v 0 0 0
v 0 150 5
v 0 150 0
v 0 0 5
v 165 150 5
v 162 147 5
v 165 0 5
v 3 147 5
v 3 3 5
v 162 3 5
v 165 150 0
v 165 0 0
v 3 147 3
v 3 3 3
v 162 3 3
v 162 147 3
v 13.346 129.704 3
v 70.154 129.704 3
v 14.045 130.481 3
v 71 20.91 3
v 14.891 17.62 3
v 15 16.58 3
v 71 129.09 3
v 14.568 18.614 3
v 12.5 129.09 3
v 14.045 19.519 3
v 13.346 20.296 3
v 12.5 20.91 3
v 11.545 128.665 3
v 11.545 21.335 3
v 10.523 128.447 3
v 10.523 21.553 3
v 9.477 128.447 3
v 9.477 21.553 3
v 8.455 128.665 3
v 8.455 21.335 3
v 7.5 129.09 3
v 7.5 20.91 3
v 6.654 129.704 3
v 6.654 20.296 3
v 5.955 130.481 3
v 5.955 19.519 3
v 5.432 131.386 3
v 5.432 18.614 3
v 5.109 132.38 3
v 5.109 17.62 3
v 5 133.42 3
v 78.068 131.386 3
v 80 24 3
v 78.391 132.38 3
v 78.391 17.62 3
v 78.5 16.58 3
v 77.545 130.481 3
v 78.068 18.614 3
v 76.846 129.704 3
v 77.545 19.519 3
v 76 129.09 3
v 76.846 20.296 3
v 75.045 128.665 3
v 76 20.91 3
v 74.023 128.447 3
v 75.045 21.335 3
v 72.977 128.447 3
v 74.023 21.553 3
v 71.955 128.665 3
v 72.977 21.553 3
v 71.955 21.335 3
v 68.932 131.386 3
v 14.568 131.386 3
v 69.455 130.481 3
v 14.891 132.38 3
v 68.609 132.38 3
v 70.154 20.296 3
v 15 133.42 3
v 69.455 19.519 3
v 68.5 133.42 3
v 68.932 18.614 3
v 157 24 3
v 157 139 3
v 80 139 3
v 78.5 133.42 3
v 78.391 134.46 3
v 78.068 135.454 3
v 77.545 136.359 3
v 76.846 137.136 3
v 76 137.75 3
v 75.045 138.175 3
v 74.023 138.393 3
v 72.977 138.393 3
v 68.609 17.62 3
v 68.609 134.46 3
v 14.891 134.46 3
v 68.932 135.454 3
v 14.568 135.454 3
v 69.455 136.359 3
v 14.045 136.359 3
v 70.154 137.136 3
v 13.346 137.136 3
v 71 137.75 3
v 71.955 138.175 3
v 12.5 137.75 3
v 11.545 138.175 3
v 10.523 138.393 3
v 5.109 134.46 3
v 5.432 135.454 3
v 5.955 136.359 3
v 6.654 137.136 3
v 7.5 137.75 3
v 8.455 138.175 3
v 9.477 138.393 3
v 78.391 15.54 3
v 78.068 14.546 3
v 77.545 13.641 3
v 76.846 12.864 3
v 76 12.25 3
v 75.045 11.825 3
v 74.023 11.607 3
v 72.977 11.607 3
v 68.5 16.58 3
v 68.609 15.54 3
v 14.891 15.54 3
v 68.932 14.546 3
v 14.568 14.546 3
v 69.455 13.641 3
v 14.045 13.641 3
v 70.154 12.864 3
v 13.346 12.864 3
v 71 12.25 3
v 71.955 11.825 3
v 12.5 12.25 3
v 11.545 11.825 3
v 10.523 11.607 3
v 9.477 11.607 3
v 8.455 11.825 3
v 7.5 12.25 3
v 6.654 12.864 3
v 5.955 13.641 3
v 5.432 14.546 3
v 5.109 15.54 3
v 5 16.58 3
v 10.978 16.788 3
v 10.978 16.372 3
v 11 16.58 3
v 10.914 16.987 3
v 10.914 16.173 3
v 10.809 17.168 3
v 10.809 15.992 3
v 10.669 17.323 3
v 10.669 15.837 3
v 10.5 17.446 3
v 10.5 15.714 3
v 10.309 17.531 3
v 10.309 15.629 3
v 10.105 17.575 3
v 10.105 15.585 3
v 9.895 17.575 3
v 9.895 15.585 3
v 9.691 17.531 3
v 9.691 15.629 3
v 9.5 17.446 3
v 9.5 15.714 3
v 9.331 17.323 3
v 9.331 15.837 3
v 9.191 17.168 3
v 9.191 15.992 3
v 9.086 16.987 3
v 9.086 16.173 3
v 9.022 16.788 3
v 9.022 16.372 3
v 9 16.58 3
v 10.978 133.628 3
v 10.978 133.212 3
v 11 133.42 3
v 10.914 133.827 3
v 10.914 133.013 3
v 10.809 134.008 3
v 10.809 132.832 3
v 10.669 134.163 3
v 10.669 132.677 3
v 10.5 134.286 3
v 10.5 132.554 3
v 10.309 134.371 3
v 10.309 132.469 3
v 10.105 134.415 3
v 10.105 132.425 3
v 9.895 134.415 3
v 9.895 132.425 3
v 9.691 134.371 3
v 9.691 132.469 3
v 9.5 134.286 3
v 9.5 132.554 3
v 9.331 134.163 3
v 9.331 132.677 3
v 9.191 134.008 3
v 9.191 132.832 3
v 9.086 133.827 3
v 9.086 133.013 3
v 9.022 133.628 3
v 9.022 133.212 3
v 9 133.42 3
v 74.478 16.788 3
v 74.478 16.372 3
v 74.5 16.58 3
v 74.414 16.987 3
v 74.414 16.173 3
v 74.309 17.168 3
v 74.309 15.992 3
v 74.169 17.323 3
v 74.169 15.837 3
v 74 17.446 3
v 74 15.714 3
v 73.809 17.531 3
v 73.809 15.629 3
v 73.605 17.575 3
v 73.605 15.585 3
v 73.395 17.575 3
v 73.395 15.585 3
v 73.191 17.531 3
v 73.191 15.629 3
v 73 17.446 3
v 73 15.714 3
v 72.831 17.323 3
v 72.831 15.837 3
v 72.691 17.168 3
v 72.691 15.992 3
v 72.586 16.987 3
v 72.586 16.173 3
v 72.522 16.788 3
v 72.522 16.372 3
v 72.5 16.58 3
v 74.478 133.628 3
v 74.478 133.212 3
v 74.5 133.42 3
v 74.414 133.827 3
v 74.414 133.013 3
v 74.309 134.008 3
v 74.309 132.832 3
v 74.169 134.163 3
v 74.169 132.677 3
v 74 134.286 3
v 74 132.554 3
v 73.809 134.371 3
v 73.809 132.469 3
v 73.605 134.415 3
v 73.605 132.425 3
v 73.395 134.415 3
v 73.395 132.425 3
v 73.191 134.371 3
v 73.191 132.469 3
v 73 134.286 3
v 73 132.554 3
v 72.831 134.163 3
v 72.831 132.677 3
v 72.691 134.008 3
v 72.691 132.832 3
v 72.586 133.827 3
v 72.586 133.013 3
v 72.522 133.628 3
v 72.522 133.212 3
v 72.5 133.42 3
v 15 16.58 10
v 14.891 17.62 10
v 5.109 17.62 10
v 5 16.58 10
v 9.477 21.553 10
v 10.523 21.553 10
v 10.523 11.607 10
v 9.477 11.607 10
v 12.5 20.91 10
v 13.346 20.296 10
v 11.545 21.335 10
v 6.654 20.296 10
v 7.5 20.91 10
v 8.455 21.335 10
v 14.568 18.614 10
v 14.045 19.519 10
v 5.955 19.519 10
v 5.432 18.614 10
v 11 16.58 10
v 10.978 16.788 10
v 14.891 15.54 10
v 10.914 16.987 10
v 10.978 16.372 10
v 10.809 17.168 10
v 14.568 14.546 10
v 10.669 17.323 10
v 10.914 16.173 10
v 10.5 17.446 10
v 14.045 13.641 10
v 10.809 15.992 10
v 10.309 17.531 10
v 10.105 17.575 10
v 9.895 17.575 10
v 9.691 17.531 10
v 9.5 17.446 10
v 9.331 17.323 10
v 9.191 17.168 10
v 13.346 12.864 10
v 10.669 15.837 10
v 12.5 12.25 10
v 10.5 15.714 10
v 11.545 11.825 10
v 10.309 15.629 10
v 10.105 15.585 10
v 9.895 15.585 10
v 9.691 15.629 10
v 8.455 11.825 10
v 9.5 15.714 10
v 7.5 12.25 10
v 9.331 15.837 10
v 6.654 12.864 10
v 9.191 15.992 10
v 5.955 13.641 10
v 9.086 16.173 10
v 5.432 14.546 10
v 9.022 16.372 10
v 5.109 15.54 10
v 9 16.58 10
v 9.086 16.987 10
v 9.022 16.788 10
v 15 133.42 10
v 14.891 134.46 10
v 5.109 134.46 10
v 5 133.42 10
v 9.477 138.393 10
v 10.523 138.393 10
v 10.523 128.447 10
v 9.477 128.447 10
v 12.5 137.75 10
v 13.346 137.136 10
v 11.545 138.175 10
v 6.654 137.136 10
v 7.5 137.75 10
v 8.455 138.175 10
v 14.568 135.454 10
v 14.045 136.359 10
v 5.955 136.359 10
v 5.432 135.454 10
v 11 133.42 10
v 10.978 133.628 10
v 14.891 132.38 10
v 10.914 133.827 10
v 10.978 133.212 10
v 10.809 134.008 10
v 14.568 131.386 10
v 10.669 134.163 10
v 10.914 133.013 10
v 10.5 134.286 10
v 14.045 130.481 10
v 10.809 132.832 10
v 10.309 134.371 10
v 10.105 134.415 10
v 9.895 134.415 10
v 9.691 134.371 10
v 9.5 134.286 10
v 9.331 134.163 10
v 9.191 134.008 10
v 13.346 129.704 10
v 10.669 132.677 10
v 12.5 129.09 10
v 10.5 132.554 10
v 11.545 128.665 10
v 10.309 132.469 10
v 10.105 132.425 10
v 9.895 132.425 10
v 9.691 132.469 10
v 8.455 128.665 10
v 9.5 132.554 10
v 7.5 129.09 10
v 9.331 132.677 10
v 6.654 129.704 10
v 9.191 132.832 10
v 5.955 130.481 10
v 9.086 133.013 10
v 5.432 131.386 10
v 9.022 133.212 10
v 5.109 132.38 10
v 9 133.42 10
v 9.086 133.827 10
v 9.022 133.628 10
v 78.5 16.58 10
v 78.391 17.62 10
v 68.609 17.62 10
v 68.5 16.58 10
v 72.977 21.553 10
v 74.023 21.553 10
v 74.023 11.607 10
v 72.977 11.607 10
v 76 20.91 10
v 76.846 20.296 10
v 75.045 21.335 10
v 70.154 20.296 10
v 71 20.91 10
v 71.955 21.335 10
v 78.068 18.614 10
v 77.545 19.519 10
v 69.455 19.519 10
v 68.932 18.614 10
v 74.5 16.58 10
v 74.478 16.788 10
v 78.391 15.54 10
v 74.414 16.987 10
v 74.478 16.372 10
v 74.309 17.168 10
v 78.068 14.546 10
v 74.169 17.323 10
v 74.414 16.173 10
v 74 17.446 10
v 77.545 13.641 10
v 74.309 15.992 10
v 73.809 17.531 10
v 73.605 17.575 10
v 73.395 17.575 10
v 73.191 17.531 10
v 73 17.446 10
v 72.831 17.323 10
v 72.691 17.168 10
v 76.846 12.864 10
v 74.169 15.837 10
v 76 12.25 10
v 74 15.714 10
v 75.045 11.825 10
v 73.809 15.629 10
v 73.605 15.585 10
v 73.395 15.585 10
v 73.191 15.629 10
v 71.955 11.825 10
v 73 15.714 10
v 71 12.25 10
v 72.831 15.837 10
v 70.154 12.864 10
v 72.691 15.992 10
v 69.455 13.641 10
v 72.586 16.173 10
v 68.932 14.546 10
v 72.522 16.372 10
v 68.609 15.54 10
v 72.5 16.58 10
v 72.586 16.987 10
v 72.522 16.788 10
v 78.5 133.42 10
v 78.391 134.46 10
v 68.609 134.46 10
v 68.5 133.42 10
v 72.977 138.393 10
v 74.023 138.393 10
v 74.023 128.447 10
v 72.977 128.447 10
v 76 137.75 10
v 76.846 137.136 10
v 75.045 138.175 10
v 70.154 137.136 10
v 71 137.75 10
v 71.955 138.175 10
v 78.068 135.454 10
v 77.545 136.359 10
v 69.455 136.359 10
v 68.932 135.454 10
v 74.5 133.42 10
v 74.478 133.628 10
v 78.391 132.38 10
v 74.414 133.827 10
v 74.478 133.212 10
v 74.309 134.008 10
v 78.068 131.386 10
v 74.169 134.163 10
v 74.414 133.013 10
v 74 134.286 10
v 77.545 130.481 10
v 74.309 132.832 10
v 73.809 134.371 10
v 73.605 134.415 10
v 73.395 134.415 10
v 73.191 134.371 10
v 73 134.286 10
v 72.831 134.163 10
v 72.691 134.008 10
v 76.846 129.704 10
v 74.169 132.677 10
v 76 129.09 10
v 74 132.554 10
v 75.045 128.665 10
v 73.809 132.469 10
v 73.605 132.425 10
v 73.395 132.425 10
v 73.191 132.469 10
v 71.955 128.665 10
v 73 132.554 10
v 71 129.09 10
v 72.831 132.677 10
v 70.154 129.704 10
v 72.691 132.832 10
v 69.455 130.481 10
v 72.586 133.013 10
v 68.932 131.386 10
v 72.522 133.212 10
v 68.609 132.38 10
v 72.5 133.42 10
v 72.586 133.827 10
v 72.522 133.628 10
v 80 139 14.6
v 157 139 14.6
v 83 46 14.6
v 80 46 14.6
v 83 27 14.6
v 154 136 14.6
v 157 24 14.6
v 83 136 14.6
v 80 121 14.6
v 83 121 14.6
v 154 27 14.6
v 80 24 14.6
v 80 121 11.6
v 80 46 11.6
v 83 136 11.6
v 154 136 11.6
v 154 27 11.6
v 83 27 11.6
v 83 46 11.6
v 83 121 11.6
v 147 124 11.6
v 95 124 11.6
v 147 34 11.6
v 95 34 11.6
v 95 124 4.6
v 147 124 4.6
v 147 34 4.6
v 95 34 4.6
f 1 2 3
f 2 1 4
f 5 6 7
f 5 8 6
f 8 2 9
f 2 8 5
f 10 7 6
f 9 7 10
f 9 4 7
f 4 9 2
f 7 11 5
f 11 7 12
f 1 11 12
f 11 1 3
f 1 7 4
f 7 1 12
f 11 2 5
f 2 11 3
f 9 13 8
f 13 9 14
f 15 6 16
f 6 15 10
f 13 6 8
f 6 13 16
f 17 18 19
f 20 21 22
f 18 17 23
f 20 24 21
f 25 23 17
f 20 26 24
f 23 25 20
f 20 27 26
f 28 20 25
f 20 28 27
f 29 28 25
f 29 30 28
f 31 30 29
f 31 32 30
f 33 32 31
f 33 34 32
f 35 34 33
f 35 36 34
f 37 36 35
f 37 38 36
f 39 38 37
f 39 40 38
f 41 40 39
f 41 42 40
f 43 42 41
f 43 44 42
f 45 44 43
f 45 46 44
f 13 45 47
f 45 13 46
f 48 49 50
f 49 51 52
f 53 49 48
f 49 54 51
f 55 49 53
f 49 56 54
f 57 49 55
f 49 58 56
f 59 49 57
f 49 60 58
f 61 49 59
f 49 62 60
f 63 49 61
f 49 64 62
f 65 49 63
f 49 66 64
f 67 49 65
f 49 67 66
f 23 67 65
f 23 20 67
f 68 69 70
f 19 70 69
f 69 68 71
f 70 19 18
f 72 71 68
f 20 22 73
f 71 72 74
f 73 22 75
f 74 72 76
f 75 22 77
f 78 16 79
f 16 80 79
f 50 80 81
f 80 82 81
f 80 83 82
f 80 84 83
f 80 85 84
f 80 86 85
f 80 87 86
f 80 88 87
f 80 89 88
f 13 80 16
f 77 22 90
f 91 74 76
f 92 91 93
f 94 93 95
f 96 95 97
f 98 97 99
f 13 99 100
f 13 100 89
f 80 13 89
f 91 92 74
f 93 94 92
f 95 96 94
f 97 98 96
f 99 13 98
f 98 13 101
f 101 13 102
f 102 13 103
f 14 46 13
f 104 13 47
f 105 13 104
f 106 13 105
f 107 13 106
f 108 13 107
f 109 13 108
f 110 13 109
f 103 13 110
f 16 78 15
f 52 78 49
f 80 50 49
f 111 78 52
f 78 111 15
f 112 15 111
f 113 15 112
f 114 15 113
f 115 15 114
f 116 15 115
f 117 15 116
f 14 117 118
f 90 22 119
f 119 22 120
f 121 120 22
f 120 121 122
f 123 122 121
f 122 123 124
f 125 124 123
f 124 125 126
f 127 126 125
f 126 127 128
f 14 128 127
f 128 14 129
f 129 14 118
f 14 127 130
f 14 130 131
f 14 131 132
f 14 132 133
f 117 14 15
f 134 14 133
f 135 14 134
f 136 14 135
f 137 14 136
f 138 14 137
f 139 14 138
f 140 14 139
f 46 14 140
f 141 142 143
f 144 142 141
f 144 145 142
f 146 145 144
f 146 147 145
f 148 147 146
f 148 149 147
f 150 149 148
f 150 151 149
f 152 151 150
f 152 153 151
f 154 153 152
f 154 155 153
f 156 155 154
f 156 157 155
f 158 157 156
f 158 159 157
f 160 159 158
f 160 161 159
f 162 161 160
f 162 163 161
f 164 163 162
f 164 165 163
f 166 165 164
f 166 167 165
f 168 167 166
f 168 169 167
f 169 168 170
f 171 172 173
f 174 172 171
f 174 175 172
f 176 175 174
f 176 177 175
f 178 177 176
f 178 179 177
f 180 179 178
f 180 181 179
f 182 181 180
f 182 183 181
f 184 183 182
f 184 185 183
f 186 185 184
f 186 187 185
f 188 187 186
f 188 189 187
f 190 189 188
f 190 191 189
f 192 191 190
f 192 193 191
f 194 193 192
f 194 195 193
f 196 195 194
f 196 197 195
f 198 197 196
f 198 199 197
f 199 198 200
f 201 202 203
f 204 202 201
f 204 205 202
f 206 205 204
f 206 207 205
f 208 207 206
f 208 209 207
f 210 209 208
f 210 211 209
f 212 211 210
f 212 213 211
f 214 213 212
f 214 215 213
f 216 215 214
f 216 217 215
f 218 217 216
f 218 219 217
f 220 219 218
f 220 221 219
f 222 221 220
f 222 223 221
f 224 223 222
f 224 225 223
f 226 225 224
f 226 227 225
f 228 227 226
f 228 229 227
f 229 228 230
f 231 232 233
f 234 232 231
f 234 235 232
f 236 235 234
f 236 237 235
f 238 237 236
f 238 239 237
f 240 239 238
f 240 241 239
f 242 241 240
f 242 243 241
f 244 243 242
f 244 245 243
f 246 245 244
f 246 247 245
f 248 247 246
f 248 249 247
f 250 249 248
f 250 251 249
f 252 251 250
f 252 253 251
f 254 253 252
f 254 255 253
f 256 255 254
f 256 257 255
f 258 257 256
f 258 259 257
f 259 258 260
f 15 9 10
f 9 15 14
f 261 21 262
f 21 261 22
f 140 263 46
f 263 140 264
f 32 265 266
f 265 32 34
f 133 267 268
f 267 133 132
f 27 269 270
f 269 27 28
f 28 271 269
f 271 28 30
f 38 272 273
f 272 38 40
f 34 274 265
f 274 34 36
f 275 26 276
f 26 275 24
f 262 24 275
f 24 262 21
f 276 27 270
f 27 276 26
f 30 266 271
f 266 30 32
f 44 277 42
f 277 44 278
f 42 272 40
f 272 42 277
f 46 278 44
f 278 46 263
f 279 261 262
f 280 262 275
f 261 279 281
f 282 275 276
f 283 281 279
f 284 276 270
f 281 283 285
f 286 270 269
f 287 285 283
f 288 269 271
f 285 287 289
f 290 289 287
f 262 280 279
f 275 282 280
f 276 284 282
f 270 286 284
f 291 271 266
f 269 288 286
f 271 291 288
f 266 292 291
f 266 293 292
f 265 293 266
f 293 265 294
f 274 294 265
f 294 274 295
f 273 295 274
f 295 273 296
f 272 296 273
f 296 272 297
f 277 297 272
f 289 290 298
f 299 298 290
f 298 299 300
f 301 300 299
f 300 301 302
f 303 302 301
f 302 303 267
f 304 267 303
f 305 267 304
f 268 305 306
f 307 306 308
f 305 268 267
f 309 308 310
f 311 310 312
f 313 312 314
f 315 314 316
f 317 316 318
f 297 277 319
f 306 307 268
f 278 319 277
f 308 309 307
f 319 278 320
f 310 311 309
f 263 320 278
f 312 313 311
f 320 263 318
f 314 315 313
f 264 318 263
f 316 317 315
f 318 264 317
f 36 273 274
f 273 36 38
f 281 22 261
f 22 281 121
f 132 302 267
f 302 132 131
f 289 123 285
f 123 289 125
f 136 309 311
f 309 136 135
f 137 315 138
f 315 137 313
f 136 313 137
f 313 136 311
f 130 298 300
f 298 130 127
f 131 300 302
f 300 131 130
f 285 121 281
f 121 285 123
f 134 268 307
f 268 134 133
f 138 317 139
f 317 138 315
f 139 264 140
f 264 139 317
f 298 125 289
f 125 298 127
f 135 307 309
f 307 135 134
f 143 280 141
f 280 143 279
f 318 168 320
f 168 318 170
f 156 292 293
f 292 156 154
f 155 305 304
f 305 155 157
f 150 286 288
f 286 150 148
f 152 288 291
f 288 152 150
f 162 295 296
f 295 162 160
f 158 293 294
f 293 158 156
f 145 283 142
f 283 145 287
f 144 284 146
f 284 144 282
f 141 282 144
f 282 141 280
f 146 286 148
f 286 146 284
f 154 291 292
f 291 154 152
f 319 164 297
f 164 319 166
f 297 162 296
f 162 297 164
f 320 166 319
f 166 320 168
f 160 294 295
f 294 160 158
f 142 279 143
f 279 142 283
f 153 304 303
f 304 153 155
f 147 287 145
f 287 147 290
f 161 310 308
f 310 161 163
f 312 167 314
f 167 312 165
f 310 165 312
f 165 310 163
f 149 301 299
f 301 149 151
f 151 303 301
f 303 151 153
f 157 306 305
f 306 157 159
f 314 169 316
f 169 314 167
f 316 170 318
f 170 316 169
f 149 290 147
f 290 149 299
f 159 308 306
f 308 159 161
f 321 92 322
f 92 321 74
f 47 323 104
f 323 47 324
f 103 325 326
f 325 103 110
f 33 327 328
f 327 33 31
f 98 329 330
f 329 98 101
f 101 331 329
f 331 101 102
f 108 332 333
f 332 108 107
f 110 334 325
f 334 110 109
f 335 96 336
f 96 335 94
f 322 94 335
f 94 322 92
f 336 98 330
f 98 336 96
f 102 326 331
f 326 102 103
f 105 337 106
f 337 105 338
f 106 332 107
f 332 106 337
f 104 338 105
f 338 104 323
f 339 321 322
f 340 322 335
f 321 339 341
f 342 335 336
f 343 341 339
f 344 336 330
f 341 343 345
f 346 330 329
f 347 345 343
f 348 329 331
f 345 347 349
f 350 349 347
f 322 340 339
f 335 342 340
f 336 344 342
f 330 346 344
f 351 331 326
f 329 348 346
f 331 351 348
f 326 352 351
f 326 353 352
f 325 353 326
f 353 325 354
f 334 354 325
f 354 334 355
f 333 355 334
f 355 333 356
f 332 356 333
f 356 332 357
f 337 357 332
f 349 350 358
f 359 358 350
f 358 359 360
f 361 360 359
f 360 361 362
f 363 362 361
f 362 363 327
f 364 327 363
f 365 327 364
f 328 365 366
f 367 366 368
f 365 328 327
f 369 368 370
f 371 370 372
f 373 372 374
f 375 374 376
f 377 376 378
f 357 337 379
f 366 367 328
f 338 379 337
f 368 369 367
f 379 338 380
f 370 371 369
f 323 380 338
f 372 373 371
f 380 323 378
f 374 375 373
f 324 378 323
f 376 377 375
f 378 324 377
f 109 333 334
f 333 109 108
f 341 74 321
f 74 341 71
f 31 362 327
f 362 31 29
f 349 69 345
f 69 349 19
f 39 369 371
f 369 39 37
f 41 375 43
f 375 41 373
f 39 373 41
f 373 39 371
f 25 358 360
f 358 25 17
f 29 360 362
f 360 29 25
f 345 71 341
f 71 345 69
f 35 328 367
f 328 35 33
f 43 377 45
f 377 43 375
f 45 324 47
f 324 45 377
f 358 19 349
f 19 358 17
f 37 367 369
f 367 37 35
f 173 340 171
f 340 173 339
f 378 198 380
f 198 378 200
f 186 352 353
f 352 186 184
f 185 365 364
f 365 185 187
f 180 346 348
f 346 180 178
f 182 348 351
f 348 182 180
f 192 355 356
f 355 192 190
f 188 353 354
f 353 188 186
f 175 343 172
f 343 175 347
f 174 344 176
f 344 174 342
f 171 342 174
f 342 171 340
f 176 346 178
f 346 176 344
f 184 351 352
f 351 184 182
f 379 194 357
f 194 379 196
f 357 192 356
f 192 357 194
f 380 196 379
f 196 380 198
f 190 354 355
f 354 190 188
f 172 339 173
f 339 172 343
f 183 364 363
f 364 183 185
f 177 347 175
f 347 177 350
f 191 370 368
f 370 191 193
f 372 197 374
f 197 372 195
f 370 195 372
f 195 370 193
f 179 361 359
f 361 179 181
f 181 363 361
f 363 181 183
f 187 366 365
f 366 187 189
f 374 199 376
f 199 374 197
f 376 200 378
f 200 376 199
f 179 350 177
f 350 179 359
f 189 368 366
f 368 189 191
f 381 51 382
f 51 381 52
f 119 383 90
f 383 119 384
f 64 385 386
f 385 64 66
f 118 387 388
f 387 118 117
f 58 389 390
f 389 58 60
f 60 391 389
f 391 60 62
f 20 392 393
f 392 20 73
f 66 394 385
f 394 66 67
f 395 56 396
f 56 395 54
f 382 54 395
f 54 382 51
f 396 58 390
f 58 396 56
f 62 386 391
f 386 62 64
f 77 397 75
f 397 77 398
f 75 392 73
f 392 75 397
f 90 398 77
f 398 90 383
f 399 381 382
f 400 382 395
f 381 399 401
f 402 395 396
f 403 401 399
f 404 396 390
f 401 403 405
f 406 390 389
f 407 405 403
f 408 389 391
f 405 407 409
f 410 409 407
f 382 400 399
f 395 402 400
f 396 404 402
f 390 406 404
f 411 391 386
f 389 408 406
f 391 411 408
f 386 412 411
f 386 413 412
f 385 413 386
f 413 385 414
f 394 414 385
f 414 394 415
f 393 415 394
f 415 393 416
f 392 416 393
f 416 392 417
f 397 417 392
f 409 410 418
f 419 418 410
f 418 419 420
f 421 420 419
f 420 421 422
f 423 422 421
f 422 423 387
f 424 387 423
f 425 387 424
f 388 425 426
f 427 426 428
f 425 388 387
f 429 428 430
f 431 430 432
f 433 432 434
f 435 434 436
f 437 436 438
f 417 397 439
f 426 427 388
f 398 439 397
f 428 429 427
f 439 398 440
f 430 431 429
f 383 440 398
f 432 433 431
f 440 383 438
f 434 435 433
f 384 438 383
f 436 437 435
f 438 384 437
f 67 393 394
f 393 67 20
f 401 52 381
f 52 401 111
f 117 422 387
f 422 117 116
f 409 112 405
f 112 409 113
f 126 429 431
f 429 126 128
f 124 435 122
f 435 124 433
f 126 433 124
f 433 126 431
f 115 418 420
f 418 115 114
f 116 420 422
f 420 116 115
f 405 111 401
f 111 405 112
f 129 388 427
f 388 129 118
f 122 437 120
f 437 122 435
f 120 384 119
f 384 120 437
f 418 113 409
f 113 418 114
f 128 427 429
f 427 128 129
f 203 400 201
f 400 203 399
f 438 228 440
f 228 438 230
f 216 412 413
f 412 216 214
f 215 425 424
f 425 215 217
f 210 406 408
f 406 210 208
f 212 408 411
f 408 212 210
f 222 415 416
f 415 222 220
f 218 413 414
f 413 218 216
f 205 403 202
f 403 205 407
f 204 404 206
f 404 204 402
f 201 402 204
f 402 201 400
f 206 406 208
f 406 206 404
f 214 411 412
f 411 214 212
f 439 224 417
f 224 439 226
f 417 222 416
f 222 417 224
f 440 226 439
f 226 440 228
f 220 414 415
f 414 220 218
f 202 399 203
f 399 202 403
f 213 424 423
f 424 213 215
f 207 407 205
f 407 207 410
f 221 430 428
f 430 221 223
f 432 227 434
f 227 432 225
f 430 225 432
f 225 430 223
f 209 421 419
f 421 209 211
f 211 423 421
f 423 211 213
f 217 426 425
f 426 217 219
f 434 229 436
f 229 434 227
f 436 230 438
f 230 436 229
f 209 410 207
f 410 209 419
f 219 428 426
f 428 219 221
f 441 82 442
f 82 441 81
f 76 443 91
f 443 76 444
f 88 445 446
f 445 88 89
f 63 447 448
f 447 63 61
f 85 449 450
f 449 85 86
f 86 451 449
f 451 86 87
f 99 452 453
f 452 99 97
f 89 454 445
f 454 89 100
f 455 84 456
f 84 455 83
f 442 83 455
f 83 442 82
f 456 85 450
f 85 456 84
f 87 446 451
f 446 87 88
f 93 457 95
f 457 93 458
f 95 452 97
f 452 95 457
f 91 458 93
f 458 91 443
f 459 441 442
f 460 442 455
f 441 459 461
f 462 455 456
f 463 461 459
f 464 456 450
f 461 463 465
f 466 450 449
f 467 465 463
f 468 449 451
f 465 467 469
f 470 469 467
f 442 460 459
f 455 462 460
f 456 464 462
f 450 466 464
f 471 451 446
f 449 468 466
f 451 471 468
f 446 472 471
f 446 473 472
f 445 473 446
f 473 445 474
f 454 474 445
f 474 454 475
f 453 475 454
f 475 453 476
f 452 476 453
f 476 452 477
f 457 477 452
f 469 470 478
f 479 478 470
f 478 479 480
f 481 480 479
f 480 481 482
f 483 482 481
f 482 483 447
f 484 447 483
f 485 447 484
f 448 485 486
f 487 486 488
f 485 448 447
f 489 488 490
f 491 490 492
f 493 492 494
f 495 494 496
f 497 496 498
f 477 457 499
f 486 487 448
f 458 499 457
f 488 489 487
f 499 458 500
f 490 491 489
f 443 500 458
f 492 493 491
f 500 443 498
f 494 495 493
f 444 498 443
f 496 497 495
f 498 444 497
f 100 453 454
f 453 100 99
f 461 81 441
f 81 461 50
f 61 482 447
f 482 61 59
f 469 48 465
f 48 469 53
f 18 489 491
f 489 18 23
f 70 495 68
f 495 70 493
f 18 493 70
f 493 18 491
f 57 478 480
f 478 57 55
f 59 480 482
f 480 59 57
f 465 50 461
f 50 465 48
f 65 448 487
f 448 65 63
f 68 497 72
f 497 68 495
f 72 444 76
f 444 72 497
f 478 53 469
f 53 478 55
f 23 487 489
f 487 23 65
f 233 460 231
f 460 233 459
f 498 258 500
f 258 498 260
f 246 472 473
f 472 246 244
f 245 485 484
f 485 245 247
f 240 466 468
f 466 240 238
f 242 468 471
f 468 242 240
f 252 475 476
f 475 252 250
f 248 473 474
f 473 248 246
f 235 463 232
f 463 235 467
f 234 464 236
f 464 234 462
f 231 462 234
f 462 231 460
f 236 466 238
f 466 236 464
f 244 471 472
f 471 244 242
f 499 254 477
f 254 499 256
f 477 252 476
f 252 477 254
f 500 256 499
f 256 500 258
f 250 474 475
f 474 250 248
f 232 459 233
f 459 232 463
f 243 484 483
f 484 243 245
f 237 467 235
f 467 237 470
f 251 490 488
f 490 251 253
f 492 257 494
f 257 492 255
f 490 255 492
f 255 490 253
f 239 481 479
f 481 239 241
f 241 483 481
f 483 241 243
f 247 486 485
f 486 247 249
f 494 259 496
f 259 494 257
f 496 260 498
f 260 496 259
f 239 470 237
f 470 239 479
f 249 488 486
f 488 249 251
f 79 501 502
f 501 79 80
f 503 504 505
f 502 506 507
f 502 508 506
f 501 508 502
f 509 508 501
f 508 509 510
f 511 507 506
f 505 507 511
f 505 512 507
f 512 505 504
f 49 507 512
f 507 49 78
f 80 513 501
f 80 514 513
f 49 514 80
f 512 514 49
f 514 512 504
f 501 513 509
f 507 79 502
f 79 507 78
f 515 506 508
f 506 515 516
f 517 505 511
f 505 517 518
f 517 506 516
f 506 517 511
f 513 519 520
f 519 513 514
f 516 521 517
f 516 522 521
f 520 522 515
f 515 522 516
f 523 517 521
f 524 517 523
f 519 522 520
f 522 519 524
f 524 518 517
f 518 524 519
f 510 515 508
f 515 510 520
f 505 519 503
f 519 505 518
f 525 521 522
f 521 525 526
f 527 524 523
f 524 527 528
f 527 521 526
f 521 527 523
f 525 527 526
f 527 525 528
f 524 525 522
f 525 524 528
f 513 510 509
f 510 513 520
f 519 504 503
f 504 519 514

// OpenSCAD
module holder(holder_width = 165, holder_height = 150) {
    difference() {
        cube(size = [holder_width,holder_height,5], center = false);
        
        translate([3,3,3]) 
            cube(size = [holder_width - 6,holder_height - 6,15], center = false);
    };
}

module mount_holders(start_x, start_y) {
    holder_height = 10;
    holder_r = 5;
    
    pos_x = start_x;
    pos_y = start_y;
    
    for (i = [0:4]) {
        pos_x = (i > 1) ? start_x + 63.5 : start_x;
        pos_y = (i % 2) ? start_y + 116.84 : start_y;

        translate([pos_x, pos_y, 0]) {
            difference() {
                cylinder(h = holder_height, r = holder_r, $fs = 0.01);
                cylinder(h = holder_height + 1, r = 1, $fs = 0.01);
            }
        }
    }
}

module screen_holder() {
    screen_width = 105;
    screen_height = 67;
    screen_depth = 3;
    sceen_holder_depth = 10 + 1.6 + screen_depth;
    size_gap = 2;
    border_size = 3;
    
    difference() {
        cube(size = [screen_width + size_gap * 2 + border_size * 2,screen_height + size_gap * 2 + border_size * 2,sceen_holder_depth], center = false);
        
        translate([border_size, border_size, sceen_holder_depth - screen_depth]) 
            cube(size = [screen_width + size_gap * 2,screen_height + size_gap * 2,screen_depth + 1], center = false);

        translate([15, 15, sceen_holder_depth - 10]) 
            cube(size = [screen_width - 15,screen_height - 15,15], center = false);
        translate([border_size + 15, -1, sceen_holder_depth - screen_depth]) 
            cube(size = [screen_width - 30,screen_height,screen_depth + 1], center = false);
    };
}

holder_width = 165;
holder_height = 150;

union() {
    holder(holder_width = holder_width, holder_height = holder_height);
    mount_holders(10, holder_height / 2 - 116.84 / 2);
    
    rotate([0, 0, 270]) translate([-139, 80, 0])
        screen_holder();
}
